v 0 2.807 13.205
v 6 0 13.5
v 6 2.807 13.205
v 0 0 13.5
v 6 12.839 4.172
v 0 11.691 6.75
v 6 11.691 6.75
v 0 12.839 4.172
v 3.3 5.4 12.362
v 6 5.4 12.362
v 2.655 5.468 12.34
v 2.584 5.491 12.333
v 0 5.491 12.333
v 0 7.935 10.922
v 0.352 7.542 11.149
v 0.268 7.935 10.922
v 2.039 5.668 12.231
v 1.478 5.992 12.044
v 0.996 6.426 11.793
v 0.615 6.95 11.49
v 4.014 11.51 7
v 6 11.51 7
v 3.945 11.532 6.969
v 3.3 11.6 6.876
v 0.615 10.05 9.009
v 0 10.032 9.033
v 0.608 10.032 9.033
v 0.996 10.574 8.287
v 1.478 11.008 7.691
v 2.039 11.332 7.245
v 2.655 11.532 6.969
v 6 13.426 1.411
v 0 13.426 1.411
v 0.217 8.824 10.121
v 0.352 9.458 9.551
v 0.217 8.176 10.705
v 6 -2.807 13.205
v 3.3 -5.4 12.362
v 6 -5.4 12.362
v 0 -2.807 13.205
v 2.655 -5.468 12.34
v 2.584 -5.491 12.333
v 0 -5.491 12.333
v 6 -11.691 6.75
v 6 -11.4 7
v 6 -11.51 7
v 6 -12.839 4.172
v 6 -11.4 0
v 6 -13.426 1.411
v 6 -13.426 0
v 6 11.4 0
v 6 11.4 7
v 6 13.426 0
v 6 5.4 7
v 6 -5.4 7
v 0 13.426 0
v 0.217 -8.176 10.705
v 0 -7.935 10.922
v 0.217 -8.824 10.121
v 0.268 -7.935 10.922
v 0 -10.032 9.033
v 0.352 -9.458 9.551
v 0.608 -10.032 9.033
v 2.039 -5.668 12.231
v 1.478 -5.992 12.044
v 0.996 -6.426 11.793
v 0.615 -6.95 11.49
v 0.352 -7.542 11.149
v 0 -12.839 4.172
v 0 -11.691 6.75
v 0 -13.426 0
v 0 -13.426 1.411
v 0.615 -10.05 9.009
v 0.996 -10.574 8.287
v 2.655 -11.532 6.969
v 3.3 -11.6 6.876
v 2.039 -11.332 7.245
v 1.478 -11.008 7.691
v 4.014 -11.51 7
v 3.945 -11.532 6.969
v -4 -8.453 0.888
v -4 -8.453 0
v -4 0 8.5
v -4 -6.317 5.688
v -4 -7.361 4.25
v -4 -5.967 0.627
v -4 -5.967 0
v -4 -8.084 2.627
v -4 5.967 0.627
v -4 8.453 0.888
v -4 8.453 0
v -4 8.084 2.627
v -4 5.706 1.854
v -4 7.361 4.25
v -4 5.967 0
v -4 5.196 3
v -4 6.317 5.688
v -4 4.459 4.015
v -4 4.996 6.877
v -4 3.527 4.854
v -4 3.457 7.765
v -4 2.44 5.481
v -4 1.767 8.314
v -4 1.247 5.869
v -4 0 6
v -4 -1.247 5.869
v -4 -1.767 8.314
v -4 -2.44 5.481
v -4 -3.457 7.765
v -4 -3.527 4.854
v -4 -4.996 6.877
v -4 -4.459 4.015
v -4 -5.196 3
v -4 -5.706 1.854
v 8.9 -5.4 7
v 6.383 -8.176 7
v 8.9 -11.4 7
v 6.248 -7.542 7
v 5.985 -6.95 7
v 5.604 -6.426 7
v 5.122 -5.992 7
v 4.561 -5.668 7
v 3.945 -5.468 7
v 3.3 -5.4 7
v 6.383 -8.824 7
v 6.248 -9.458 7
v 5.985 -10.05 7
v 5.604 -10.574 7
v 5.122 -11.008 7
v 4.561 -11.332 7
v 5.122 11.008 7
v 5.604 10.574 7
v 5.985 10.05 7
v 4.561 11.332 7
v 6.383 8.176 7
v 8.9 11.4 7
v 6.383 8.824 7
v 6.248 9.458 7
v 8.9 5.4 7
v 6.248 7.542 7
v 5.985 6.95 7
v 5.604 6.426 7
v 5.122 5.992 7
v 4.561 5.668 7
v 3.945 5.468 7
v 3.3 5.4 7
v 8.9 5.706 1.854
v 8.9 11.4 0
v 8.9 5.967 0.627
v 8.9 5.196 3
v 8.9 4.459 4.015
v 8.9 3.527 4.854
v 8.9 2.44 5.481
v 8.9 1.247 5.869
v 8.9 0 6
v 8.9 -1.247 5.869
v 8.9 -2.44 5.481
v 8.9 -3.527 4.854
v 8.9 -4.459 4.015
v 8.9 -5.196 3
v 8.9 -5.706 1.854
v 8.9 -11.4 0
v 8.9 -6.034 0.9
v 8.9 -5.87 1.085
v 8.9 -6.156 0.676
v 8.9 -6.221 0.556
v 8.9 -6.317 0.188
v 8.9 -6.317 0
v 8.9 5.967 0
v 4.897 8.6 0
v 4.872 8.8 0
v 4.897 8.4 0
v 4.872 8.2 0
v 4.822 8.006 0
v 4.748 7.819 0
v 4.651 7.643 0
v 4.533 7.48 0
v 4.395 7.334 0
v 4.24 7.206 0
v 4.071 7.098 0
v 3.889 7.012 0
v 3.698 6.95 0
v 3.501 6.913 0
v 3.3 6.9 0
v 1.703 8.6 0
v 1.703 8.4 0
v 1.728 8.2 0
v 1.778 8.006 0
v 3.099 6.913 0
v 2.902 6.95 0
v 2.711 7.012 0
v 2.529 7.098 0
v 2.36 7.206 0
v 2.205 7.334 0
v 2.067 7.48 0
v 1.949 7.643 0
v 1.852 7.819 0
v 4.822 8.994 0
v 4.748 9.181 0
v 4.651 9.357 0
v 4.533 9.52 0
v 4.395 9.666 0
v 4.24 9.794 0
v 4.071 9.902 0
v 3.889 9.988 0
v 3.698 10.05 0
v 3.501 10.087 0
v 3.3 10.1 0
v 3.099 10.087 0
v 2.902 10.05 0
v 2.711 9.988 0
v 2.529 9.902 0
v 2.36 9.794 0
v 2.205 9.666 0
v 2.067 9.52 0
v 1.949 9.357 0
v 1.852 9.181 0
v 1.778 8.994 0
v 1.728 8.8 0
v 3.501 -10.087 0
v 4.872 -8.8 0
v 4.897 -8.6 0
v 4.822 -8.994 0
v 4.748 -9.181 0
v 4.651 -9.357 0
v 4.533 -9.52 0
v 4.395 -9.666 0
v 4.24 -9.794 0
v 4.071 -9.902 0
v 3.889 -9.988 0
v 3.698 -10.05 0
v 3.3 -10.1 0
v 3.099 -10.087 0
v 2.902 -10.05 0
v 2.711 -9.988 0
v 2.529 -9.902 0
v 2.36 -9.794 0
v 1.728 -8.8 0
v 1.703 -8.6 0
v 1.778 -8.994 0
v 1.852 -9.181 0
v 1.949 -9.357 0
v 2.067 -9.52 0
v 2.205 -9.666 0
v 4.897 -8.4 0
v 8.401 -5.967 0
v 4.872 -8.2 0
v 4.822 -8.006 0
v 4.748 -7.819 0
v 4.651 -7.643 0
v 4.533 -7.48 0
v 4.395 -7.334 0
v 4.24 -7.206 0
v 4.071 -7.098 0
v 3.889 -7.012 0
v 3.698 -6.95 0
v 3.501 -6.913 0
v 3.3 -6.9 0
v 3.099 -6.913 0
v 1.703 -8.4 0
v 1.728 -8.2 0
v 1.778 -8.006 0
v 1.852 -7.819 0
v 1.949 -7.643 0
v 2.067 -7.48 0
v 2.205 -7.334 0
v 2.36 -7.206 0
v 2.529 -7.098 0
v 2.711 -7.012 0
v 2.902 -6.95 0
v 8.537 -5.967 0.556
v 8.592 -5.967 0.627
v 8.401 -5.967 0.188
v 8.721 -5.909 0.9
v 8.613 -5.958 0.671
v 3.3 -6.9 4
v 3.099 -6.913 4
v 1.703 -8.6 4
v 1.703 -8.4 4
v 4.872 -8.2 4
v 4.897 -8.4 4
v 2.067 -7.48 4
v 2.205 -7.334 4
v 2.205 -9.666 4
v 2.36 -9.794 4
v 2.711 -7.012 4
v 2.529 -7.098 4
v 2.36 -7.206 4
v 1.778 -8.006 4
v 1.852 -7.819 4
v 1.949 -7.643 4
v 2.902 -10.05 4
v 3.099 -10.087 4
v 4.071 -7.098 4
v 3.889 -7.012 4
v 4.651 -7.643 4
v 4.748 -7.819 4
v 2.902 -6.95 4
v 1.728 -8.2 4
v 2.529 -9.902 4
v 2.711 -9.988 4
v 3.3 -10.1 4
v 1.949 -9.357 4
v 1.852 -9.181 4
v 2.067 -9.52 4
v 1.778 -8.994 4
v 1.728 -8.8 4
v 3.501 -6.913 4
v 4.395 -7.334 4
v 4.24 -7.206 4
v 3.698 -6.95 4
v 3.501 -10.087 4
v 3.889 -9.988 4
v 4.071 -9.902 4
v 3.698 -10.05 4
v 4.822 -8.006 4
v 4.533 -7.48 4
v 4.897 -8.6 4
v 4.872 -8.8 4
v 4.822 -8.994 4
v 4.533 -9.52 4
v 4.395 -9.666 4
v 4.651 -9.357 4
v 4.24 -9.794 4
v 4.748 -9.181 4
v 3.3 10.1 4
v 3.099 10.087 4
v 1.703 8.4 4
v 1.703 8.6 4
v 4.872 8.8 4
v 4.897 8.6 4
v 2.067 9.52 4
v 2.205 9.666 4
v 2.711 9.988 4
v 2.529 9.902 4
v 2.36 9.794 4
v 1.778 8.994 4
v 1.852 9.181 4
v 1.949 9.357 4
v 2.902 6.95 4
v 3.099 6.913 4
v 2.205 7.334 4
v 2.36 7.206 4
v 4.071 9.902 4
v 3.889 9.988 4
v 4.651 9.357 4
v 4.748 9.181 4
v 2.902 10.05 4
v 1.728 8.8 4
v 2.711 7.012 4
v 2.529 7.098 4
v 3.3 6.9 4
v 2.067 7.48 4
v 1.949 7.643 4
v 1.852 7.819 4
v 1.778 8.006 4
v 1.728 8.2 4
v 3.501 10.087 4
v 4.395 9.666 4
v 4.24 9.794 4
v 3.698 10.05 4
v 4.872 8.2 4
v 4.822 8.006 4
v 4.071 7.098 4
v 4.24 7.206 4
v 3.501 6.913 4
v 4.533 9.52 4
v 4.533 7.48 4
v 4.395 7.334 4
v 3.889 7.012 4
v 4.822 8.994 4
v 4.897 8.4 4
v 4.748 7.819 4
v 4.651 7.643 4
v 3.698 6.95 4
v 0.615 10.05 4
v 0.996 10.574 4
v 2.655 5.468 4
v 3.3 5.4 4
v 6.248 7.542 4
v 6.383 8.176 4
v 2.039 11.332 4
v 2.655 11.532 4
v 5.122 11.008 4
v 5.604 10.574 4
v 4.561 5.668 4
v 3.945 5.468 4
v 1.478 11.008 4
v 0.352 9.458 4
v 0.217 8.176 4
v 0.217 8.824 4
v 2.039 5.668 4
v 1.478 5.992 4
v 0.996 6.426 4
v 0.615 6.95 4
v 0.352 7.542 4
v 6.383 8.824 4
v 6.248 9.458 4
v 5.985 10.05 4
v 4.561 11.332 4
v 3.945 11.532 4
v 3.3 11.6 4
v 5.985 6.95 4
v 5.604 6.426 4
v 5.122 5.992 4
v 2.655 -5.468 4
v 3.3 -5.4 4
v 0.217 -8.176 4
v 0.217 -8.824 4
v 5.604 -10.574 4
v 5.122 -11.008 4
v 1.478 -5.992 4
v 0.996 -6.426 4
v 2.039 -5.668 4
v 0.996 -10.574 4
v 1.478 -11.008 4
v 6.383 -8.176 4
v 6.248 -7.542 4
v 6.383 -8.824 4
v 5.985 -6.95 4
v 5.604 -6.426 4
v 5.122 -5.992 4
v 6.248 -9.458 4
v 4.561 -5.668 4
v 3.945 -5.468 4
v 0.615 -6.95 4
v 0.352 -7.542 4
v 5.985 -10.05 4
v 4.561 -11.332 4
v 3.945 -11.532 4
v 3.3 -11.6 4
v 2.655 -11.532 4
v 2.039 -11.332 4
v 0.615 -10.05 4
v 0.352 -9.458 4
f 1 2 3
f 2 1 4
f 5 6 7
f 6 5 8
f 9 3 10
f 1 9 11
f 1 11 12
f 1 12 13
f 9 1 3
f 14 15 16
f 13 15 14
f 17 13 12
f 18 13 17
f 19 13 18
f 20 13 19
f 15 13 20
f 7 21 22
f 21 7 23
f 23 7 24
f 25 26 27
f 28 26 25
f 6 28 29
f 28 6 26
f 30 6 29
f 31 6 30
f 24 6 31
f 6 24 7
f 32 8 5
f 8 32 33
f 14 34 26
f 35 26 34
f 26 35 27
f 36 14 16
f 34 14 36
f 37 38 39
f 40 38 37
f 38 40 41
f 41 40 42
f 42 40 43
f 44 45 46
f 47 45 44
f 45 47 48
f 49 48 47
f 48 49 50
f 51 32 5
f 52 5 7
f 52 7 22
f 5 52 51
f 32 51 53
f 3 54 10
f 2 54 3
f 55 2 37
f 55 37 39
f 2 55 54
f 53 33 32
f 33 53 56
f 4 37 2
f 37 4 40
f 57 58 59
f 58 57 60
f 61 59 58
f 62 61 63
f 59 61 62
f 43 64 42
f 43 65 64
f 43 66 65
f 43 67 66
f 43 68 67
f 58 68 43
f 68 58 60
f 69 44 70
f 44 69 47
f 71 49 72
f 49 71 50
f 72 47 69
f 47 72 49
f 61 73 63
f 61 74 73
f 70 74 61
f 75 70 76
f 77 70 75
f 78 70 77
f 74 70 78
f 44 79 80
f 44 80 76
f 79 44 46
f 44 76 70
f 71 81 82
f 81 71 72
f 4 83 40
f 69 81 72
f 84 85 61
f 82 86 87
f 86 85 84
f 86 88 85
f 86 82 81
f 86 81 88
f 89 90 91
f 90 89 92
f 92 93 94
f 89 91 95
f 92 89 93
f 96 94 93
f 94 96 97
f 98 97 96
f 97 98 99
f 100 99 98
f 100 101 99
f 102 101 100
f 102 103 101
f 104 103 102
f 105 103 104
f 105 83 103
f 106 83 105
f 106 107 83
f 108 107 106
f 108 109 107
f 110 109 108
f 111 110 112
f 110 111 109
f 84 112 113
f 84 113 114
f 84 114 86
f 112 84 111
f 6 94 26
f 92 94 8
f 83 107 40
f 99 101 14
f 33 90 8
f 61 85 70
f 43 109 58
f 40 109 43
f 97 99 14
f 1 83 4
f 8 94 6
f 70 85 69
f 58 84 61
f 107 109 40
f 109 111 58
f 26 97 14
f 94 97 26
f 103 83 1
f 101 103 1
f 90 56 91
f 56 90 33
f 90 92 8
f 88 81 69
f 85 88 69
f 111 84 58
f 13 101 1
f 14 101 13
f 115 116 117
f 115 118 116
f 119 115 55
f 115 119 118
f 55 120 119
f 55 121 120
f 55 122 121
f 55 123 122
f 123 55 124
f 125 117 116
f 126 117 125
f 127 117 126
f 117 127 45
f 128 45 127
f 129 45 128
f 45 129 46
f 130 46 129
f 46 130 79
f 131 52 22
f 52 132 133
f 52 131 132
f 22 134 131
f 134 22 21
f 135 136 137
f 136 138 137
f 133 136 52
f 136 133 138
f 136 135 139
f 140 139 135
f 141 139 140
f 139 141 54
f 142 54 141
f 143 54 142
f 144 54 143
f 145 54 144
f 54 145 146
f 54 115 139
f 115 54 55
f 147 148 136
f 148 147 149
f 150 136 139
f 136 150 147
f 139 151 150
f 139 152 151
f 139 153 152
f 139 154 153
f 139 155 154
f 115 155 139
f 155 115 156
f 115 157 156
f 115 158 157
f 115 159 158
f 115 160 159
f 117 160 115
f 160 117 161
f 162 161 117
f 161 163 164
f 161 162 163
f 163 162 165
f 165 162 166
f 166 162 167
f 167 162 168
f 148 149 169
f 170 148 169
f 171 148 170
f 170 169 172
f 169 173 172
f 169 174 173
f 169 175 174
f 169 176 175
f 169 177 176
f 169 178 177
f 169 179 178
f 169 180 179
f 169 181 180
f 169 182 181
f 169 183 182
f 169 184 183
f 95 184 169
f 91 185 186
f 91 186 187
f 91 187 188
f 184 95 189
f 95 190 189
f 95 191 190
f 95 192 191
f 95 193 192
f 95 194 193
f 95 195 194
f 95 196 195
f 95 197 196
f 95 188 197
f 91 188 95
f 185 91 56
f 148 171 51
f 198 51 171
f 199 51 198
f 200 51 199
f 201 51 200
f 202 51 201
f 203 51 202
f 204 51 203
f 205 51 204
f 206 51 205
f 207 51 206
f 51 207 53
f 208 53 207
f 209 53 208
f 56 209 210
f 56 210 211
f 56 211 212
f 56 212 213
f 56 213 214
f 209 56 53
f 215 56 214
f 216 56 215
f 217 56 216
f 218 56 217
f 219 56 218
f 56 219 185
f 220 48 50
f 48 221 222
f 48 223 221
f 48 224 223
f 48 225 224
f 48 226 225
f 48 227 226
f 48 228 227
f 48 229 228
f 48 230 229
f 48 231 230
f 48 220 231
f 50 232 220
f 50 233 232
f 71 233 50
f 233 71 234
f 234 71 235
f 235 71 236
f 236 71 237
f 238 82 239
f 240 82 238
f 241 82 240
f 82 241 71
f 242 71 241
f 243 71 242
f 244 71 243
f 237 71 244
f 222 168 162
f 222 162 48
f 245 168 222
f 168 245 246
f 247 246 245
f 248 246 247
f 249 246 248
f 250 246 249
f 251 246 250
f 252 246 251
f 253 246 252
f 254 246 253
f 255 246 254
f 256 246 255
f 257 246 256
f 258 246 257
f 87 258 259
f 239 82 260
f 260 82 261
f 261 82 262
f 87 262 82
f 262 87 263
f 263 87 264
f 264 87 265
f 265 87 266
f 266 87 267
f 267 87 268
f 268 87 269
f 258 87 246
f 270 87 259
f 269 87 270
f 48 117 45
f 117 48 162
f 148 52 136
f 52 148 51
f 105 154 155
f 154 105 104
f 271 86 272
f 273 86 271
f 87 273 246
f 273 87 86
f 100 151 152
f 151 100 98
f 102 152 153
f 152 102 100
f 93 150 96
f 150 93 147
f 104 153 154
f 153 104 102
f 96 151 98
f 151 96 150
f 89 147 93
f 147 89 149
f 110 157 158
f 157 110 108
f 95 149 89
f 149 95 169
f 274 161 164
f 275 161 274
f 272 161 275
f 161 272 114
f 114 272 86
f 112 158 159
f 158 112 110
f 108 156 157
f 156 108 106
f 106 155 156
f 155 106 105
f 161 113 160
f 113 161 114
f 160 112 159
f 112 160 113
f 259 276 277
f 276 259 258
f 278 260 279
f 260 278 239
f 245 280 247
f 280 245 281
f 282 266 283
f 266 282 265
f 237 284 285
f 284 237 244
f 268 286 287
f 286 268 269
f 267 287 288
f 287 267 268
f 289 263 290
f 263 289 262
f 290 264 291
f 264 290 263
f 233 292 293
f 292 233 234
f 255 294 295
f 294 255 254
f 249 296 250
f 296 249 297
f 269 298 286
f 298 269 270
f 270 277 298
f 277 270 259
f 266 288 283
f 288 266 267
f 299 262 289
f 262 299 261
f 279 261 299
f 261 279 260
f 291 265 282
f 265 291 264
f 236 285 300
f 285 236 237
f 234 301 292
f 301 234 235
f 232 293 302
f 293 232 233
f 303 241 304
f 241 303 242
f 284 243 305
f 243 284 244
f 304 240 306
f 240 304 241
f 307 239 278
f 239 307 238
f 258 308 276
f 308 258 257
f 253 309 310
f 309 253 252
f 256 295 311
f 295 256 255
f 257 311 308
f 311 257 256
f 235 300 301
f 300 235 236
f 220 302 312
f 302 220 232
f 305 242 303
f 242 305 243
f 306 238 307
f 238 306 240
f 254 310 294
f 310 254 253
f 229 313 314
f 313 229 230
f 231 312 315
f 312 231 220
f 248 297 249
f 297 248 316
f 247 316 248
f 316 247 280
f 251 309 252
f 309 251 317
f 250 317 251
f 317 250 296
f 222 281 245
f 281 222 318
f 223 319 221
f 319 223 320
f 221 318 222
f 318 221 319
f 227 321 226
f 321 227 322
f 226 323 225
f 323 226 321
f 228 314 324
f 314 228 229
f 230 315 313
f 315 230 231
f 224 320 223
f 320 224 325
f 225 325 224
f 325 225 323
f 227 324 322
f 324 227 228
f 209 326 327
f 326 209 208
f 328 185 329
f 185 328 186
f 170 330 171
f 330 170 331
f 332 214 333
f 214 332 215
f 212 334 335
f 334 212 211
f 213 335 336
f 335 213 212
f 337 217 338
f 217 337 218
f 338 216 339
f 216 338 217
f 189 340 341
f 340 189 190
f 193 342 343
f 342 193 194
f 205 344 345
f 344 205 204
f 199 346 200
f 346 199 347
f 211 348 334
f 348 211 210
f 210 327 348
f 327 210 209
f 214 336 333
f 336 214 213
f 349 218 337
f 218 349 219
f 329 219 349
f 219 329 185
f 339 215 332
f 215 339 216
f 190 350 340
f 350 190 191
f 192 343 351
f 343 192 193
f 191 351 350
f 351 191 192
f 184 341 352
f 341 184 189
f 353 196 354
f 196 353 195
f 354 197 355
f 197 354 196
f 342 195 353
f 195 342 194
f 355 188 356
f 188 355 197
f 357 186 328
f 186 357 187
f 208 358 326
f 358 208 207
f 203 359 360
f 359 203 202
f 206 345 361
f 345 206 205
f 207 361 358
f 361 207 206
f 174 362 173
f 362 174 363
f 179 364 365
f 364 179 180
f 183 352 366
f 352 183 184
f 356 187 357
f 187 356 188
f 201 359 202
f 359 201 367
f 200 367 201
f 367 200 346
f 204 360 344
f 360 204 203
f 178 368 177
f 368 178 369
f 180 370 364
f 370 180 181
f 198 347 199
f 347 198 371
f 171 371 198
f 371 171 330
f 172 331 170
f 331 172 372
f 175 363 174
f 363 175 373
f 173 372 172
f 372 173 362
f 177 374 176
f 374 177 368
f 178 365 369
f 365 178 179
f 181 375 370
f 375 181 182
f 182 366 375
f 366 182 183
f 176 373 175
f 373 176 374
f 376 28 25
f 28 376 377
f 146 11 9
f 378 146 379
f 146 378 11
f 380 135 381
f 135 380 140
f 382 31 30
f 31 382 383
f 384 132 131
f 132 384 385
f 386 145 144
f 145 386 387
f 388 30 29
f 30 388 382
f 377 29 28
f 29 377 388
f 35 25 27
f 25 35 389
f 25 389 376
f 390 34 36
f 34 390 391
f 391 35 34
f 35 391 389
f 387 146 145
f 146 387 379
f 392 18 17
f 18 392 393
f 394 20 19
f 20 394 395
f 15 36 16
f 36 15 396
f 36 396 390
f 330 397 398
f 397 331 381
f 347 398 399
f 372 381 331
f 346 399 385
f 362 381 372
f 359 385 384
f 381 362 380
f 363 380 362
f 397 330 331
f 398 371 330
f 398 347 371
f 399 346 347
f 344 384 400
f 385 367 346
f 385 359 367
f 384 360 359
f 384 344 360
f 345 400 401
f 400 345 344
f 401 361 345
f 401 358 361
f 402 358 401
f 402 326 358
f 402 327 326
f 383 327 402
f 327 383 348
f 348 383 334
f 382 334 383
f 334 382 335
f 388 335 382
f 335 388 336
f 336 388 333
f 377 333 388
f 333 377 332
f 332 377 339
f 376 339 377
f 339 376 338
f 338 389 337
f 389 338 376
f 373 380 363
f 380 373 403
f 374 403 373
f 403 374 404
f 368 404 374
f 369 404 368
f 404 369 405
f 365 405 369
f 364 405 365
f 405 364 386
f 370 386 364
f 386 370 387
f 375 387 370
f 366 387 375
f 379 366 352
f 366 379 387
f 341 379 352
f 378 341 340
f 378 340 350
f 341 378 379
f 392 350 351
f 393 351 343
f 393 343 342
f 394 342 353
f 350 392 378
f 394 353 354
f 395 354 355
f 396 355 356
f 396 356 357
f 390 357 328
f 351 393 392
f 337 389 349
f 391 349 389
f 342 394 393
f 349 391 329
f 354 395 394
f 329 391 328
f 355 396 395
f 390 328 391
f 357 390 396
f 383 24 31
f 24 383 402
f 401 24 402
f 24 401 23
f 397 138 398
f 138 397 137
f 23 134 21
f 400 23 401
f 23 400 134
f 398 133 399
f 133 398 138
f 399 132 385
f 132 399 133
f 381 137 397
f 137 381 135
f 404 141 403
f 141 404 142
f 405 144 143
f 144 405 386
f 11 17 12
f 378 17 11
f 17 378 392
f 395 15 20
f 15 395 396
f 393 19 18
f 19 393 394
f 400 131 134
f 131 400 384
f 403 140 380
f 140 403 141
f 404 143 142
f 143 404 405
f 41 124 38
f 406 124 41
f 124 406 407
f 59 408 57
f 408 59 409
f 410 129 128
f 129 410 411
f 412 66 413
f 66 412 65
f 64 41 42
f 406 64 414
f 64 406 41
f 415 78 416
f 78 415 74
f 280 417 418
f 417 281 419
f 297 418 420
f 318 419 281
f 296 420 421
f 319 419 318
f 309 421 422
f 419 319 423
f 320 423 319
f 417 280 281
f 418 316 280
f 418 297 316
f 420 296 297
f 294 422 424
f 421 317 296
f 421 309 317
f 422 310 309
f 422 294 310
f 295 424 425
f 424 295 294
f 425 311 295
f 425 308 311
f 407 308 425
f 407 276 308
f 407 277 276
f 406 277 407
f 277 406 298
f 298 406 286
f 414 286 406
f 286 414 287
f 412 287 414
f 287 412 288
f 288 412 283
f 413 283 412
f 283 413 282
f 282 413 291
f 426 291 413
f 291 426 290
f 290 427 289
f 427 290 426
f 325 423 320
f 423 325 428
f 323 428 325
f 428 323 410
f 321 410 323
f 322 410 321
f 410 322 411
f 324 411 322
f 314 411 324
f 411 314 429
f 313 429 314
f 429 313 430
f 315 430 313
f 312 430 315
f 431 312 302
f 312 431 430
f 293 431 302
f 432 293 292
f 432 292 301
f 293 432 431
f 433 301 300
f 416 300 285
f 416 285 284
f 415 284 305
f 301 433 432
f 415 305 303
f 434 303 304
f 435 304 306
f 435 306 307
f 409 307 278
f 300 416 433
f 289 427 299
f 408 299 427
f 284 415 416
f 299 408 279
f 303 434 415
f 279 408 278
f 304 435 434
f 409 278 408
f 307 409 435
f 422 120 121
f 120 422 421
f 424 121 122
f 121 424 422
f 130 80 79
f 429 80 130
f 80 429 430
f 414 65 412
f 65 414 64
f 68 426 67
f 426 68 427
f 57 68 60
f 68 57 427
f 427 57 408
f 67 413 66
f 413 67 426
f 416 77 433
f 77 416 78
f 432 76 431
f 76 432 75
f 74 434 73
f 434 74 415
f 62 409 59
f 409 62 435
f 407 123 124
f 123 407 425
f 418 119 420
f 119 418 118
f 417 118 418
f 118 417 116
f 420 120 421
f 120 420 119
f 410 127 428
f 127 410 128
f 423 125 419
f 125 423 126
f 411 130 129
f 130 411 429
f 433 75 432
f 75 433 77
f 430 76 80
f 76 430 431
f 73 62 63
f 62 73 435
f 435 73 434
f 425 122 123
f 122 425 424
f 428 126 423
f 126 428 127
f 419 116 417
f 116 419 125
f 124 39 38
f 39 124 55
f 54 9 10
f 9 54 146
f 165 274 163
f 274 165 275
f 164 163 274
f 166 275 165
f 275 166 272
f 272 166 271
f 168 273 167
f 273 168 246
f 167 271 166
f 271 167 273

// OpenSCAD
// PRUSA iteration4
// Extruder cable clip
// GNU GPL v3
// Josef Průša <iam@josefprusa.cz> and contributors
// http://www.reprap.org/wiki/Prusa_Mendel
// http://prusamendel.org

module extruder_cable_clip()
{
    difference()
    {
        difference()
        {
            union()
            {
                // body shape
                translate([-6, 28, 28]) rotate([0, 90, 0]) cylinder(h = 6, r = 13.5, $fn = 30);
                translate([-10, 28, 28]) rotate([0, 90, 0]) cylinder(h = 4, r1 = 8.5, r2 = 13.5, $fn = 30);
                translate([0, 16.6, 28]) cube([2.9, 22.8, 7]);
            }

            // bottom cut and shape
            translate([-15, 7, 13]) cube([30, 40, 15]);
            translate([-20, 28, 28]) rotate([0, 90, 0]) cylinder(h = 40, r = 6, $fn = 30);

            // screws
            translate([-2.7, 19.5, 25]) rotate([0, 0, 90]) cylinder(h =  10, r = 1.6, $fn = 50);
            translate([-2.7, 36.5, 25]) rotate([0, 0, 90]) cylinder(h = 10, r = 1.6, $fn = 50);
            translate([-2.7, 36.5, 32]) rotate([0, 0, 90]) cylinder(h = 13, r = 3.1, $fn = 30);
            translate([-2.7, 19.5, 32]) rotate([0, 0, 90]) cylinder(h = 13, r = 3.1, $fn = 30);

            // screw heads opening
            translate([-2.7, 16.4, 35]) cube([10, 6.2, 15]);
            translate([-2.7, 33.4, 35]) cube([10, 6.2, 15]);
        }

        difference()
        {
            // cable grip
            translate([-8, 28, 28]) rotate([0, 90, 0]) cylinder(h = 10, r = 6, $fn = 30);
            translate([-20, 28, 28]) rotate([0, 90, 0]) cylinder(h = 40, r = 5.5, $fn = 30);
            translate([-15, 7, 13]) cube([30, 40, 15]);
            translate([-6, 7, 13]) cube([2, 40, 25]);
            translate([-2, 7, 13]) cube([2, 40, 25]);
        }

        //nylon hole
        translate([-3, 28, 28]) rotate([35, 90, 0]) cylinder(h = 24, r = 1.8, $fn = 30);
    }
}

//translate([0, 0, 0]) extruder_cable_clip();
translate([6, -28, -28]) extruder_cable_clip();
